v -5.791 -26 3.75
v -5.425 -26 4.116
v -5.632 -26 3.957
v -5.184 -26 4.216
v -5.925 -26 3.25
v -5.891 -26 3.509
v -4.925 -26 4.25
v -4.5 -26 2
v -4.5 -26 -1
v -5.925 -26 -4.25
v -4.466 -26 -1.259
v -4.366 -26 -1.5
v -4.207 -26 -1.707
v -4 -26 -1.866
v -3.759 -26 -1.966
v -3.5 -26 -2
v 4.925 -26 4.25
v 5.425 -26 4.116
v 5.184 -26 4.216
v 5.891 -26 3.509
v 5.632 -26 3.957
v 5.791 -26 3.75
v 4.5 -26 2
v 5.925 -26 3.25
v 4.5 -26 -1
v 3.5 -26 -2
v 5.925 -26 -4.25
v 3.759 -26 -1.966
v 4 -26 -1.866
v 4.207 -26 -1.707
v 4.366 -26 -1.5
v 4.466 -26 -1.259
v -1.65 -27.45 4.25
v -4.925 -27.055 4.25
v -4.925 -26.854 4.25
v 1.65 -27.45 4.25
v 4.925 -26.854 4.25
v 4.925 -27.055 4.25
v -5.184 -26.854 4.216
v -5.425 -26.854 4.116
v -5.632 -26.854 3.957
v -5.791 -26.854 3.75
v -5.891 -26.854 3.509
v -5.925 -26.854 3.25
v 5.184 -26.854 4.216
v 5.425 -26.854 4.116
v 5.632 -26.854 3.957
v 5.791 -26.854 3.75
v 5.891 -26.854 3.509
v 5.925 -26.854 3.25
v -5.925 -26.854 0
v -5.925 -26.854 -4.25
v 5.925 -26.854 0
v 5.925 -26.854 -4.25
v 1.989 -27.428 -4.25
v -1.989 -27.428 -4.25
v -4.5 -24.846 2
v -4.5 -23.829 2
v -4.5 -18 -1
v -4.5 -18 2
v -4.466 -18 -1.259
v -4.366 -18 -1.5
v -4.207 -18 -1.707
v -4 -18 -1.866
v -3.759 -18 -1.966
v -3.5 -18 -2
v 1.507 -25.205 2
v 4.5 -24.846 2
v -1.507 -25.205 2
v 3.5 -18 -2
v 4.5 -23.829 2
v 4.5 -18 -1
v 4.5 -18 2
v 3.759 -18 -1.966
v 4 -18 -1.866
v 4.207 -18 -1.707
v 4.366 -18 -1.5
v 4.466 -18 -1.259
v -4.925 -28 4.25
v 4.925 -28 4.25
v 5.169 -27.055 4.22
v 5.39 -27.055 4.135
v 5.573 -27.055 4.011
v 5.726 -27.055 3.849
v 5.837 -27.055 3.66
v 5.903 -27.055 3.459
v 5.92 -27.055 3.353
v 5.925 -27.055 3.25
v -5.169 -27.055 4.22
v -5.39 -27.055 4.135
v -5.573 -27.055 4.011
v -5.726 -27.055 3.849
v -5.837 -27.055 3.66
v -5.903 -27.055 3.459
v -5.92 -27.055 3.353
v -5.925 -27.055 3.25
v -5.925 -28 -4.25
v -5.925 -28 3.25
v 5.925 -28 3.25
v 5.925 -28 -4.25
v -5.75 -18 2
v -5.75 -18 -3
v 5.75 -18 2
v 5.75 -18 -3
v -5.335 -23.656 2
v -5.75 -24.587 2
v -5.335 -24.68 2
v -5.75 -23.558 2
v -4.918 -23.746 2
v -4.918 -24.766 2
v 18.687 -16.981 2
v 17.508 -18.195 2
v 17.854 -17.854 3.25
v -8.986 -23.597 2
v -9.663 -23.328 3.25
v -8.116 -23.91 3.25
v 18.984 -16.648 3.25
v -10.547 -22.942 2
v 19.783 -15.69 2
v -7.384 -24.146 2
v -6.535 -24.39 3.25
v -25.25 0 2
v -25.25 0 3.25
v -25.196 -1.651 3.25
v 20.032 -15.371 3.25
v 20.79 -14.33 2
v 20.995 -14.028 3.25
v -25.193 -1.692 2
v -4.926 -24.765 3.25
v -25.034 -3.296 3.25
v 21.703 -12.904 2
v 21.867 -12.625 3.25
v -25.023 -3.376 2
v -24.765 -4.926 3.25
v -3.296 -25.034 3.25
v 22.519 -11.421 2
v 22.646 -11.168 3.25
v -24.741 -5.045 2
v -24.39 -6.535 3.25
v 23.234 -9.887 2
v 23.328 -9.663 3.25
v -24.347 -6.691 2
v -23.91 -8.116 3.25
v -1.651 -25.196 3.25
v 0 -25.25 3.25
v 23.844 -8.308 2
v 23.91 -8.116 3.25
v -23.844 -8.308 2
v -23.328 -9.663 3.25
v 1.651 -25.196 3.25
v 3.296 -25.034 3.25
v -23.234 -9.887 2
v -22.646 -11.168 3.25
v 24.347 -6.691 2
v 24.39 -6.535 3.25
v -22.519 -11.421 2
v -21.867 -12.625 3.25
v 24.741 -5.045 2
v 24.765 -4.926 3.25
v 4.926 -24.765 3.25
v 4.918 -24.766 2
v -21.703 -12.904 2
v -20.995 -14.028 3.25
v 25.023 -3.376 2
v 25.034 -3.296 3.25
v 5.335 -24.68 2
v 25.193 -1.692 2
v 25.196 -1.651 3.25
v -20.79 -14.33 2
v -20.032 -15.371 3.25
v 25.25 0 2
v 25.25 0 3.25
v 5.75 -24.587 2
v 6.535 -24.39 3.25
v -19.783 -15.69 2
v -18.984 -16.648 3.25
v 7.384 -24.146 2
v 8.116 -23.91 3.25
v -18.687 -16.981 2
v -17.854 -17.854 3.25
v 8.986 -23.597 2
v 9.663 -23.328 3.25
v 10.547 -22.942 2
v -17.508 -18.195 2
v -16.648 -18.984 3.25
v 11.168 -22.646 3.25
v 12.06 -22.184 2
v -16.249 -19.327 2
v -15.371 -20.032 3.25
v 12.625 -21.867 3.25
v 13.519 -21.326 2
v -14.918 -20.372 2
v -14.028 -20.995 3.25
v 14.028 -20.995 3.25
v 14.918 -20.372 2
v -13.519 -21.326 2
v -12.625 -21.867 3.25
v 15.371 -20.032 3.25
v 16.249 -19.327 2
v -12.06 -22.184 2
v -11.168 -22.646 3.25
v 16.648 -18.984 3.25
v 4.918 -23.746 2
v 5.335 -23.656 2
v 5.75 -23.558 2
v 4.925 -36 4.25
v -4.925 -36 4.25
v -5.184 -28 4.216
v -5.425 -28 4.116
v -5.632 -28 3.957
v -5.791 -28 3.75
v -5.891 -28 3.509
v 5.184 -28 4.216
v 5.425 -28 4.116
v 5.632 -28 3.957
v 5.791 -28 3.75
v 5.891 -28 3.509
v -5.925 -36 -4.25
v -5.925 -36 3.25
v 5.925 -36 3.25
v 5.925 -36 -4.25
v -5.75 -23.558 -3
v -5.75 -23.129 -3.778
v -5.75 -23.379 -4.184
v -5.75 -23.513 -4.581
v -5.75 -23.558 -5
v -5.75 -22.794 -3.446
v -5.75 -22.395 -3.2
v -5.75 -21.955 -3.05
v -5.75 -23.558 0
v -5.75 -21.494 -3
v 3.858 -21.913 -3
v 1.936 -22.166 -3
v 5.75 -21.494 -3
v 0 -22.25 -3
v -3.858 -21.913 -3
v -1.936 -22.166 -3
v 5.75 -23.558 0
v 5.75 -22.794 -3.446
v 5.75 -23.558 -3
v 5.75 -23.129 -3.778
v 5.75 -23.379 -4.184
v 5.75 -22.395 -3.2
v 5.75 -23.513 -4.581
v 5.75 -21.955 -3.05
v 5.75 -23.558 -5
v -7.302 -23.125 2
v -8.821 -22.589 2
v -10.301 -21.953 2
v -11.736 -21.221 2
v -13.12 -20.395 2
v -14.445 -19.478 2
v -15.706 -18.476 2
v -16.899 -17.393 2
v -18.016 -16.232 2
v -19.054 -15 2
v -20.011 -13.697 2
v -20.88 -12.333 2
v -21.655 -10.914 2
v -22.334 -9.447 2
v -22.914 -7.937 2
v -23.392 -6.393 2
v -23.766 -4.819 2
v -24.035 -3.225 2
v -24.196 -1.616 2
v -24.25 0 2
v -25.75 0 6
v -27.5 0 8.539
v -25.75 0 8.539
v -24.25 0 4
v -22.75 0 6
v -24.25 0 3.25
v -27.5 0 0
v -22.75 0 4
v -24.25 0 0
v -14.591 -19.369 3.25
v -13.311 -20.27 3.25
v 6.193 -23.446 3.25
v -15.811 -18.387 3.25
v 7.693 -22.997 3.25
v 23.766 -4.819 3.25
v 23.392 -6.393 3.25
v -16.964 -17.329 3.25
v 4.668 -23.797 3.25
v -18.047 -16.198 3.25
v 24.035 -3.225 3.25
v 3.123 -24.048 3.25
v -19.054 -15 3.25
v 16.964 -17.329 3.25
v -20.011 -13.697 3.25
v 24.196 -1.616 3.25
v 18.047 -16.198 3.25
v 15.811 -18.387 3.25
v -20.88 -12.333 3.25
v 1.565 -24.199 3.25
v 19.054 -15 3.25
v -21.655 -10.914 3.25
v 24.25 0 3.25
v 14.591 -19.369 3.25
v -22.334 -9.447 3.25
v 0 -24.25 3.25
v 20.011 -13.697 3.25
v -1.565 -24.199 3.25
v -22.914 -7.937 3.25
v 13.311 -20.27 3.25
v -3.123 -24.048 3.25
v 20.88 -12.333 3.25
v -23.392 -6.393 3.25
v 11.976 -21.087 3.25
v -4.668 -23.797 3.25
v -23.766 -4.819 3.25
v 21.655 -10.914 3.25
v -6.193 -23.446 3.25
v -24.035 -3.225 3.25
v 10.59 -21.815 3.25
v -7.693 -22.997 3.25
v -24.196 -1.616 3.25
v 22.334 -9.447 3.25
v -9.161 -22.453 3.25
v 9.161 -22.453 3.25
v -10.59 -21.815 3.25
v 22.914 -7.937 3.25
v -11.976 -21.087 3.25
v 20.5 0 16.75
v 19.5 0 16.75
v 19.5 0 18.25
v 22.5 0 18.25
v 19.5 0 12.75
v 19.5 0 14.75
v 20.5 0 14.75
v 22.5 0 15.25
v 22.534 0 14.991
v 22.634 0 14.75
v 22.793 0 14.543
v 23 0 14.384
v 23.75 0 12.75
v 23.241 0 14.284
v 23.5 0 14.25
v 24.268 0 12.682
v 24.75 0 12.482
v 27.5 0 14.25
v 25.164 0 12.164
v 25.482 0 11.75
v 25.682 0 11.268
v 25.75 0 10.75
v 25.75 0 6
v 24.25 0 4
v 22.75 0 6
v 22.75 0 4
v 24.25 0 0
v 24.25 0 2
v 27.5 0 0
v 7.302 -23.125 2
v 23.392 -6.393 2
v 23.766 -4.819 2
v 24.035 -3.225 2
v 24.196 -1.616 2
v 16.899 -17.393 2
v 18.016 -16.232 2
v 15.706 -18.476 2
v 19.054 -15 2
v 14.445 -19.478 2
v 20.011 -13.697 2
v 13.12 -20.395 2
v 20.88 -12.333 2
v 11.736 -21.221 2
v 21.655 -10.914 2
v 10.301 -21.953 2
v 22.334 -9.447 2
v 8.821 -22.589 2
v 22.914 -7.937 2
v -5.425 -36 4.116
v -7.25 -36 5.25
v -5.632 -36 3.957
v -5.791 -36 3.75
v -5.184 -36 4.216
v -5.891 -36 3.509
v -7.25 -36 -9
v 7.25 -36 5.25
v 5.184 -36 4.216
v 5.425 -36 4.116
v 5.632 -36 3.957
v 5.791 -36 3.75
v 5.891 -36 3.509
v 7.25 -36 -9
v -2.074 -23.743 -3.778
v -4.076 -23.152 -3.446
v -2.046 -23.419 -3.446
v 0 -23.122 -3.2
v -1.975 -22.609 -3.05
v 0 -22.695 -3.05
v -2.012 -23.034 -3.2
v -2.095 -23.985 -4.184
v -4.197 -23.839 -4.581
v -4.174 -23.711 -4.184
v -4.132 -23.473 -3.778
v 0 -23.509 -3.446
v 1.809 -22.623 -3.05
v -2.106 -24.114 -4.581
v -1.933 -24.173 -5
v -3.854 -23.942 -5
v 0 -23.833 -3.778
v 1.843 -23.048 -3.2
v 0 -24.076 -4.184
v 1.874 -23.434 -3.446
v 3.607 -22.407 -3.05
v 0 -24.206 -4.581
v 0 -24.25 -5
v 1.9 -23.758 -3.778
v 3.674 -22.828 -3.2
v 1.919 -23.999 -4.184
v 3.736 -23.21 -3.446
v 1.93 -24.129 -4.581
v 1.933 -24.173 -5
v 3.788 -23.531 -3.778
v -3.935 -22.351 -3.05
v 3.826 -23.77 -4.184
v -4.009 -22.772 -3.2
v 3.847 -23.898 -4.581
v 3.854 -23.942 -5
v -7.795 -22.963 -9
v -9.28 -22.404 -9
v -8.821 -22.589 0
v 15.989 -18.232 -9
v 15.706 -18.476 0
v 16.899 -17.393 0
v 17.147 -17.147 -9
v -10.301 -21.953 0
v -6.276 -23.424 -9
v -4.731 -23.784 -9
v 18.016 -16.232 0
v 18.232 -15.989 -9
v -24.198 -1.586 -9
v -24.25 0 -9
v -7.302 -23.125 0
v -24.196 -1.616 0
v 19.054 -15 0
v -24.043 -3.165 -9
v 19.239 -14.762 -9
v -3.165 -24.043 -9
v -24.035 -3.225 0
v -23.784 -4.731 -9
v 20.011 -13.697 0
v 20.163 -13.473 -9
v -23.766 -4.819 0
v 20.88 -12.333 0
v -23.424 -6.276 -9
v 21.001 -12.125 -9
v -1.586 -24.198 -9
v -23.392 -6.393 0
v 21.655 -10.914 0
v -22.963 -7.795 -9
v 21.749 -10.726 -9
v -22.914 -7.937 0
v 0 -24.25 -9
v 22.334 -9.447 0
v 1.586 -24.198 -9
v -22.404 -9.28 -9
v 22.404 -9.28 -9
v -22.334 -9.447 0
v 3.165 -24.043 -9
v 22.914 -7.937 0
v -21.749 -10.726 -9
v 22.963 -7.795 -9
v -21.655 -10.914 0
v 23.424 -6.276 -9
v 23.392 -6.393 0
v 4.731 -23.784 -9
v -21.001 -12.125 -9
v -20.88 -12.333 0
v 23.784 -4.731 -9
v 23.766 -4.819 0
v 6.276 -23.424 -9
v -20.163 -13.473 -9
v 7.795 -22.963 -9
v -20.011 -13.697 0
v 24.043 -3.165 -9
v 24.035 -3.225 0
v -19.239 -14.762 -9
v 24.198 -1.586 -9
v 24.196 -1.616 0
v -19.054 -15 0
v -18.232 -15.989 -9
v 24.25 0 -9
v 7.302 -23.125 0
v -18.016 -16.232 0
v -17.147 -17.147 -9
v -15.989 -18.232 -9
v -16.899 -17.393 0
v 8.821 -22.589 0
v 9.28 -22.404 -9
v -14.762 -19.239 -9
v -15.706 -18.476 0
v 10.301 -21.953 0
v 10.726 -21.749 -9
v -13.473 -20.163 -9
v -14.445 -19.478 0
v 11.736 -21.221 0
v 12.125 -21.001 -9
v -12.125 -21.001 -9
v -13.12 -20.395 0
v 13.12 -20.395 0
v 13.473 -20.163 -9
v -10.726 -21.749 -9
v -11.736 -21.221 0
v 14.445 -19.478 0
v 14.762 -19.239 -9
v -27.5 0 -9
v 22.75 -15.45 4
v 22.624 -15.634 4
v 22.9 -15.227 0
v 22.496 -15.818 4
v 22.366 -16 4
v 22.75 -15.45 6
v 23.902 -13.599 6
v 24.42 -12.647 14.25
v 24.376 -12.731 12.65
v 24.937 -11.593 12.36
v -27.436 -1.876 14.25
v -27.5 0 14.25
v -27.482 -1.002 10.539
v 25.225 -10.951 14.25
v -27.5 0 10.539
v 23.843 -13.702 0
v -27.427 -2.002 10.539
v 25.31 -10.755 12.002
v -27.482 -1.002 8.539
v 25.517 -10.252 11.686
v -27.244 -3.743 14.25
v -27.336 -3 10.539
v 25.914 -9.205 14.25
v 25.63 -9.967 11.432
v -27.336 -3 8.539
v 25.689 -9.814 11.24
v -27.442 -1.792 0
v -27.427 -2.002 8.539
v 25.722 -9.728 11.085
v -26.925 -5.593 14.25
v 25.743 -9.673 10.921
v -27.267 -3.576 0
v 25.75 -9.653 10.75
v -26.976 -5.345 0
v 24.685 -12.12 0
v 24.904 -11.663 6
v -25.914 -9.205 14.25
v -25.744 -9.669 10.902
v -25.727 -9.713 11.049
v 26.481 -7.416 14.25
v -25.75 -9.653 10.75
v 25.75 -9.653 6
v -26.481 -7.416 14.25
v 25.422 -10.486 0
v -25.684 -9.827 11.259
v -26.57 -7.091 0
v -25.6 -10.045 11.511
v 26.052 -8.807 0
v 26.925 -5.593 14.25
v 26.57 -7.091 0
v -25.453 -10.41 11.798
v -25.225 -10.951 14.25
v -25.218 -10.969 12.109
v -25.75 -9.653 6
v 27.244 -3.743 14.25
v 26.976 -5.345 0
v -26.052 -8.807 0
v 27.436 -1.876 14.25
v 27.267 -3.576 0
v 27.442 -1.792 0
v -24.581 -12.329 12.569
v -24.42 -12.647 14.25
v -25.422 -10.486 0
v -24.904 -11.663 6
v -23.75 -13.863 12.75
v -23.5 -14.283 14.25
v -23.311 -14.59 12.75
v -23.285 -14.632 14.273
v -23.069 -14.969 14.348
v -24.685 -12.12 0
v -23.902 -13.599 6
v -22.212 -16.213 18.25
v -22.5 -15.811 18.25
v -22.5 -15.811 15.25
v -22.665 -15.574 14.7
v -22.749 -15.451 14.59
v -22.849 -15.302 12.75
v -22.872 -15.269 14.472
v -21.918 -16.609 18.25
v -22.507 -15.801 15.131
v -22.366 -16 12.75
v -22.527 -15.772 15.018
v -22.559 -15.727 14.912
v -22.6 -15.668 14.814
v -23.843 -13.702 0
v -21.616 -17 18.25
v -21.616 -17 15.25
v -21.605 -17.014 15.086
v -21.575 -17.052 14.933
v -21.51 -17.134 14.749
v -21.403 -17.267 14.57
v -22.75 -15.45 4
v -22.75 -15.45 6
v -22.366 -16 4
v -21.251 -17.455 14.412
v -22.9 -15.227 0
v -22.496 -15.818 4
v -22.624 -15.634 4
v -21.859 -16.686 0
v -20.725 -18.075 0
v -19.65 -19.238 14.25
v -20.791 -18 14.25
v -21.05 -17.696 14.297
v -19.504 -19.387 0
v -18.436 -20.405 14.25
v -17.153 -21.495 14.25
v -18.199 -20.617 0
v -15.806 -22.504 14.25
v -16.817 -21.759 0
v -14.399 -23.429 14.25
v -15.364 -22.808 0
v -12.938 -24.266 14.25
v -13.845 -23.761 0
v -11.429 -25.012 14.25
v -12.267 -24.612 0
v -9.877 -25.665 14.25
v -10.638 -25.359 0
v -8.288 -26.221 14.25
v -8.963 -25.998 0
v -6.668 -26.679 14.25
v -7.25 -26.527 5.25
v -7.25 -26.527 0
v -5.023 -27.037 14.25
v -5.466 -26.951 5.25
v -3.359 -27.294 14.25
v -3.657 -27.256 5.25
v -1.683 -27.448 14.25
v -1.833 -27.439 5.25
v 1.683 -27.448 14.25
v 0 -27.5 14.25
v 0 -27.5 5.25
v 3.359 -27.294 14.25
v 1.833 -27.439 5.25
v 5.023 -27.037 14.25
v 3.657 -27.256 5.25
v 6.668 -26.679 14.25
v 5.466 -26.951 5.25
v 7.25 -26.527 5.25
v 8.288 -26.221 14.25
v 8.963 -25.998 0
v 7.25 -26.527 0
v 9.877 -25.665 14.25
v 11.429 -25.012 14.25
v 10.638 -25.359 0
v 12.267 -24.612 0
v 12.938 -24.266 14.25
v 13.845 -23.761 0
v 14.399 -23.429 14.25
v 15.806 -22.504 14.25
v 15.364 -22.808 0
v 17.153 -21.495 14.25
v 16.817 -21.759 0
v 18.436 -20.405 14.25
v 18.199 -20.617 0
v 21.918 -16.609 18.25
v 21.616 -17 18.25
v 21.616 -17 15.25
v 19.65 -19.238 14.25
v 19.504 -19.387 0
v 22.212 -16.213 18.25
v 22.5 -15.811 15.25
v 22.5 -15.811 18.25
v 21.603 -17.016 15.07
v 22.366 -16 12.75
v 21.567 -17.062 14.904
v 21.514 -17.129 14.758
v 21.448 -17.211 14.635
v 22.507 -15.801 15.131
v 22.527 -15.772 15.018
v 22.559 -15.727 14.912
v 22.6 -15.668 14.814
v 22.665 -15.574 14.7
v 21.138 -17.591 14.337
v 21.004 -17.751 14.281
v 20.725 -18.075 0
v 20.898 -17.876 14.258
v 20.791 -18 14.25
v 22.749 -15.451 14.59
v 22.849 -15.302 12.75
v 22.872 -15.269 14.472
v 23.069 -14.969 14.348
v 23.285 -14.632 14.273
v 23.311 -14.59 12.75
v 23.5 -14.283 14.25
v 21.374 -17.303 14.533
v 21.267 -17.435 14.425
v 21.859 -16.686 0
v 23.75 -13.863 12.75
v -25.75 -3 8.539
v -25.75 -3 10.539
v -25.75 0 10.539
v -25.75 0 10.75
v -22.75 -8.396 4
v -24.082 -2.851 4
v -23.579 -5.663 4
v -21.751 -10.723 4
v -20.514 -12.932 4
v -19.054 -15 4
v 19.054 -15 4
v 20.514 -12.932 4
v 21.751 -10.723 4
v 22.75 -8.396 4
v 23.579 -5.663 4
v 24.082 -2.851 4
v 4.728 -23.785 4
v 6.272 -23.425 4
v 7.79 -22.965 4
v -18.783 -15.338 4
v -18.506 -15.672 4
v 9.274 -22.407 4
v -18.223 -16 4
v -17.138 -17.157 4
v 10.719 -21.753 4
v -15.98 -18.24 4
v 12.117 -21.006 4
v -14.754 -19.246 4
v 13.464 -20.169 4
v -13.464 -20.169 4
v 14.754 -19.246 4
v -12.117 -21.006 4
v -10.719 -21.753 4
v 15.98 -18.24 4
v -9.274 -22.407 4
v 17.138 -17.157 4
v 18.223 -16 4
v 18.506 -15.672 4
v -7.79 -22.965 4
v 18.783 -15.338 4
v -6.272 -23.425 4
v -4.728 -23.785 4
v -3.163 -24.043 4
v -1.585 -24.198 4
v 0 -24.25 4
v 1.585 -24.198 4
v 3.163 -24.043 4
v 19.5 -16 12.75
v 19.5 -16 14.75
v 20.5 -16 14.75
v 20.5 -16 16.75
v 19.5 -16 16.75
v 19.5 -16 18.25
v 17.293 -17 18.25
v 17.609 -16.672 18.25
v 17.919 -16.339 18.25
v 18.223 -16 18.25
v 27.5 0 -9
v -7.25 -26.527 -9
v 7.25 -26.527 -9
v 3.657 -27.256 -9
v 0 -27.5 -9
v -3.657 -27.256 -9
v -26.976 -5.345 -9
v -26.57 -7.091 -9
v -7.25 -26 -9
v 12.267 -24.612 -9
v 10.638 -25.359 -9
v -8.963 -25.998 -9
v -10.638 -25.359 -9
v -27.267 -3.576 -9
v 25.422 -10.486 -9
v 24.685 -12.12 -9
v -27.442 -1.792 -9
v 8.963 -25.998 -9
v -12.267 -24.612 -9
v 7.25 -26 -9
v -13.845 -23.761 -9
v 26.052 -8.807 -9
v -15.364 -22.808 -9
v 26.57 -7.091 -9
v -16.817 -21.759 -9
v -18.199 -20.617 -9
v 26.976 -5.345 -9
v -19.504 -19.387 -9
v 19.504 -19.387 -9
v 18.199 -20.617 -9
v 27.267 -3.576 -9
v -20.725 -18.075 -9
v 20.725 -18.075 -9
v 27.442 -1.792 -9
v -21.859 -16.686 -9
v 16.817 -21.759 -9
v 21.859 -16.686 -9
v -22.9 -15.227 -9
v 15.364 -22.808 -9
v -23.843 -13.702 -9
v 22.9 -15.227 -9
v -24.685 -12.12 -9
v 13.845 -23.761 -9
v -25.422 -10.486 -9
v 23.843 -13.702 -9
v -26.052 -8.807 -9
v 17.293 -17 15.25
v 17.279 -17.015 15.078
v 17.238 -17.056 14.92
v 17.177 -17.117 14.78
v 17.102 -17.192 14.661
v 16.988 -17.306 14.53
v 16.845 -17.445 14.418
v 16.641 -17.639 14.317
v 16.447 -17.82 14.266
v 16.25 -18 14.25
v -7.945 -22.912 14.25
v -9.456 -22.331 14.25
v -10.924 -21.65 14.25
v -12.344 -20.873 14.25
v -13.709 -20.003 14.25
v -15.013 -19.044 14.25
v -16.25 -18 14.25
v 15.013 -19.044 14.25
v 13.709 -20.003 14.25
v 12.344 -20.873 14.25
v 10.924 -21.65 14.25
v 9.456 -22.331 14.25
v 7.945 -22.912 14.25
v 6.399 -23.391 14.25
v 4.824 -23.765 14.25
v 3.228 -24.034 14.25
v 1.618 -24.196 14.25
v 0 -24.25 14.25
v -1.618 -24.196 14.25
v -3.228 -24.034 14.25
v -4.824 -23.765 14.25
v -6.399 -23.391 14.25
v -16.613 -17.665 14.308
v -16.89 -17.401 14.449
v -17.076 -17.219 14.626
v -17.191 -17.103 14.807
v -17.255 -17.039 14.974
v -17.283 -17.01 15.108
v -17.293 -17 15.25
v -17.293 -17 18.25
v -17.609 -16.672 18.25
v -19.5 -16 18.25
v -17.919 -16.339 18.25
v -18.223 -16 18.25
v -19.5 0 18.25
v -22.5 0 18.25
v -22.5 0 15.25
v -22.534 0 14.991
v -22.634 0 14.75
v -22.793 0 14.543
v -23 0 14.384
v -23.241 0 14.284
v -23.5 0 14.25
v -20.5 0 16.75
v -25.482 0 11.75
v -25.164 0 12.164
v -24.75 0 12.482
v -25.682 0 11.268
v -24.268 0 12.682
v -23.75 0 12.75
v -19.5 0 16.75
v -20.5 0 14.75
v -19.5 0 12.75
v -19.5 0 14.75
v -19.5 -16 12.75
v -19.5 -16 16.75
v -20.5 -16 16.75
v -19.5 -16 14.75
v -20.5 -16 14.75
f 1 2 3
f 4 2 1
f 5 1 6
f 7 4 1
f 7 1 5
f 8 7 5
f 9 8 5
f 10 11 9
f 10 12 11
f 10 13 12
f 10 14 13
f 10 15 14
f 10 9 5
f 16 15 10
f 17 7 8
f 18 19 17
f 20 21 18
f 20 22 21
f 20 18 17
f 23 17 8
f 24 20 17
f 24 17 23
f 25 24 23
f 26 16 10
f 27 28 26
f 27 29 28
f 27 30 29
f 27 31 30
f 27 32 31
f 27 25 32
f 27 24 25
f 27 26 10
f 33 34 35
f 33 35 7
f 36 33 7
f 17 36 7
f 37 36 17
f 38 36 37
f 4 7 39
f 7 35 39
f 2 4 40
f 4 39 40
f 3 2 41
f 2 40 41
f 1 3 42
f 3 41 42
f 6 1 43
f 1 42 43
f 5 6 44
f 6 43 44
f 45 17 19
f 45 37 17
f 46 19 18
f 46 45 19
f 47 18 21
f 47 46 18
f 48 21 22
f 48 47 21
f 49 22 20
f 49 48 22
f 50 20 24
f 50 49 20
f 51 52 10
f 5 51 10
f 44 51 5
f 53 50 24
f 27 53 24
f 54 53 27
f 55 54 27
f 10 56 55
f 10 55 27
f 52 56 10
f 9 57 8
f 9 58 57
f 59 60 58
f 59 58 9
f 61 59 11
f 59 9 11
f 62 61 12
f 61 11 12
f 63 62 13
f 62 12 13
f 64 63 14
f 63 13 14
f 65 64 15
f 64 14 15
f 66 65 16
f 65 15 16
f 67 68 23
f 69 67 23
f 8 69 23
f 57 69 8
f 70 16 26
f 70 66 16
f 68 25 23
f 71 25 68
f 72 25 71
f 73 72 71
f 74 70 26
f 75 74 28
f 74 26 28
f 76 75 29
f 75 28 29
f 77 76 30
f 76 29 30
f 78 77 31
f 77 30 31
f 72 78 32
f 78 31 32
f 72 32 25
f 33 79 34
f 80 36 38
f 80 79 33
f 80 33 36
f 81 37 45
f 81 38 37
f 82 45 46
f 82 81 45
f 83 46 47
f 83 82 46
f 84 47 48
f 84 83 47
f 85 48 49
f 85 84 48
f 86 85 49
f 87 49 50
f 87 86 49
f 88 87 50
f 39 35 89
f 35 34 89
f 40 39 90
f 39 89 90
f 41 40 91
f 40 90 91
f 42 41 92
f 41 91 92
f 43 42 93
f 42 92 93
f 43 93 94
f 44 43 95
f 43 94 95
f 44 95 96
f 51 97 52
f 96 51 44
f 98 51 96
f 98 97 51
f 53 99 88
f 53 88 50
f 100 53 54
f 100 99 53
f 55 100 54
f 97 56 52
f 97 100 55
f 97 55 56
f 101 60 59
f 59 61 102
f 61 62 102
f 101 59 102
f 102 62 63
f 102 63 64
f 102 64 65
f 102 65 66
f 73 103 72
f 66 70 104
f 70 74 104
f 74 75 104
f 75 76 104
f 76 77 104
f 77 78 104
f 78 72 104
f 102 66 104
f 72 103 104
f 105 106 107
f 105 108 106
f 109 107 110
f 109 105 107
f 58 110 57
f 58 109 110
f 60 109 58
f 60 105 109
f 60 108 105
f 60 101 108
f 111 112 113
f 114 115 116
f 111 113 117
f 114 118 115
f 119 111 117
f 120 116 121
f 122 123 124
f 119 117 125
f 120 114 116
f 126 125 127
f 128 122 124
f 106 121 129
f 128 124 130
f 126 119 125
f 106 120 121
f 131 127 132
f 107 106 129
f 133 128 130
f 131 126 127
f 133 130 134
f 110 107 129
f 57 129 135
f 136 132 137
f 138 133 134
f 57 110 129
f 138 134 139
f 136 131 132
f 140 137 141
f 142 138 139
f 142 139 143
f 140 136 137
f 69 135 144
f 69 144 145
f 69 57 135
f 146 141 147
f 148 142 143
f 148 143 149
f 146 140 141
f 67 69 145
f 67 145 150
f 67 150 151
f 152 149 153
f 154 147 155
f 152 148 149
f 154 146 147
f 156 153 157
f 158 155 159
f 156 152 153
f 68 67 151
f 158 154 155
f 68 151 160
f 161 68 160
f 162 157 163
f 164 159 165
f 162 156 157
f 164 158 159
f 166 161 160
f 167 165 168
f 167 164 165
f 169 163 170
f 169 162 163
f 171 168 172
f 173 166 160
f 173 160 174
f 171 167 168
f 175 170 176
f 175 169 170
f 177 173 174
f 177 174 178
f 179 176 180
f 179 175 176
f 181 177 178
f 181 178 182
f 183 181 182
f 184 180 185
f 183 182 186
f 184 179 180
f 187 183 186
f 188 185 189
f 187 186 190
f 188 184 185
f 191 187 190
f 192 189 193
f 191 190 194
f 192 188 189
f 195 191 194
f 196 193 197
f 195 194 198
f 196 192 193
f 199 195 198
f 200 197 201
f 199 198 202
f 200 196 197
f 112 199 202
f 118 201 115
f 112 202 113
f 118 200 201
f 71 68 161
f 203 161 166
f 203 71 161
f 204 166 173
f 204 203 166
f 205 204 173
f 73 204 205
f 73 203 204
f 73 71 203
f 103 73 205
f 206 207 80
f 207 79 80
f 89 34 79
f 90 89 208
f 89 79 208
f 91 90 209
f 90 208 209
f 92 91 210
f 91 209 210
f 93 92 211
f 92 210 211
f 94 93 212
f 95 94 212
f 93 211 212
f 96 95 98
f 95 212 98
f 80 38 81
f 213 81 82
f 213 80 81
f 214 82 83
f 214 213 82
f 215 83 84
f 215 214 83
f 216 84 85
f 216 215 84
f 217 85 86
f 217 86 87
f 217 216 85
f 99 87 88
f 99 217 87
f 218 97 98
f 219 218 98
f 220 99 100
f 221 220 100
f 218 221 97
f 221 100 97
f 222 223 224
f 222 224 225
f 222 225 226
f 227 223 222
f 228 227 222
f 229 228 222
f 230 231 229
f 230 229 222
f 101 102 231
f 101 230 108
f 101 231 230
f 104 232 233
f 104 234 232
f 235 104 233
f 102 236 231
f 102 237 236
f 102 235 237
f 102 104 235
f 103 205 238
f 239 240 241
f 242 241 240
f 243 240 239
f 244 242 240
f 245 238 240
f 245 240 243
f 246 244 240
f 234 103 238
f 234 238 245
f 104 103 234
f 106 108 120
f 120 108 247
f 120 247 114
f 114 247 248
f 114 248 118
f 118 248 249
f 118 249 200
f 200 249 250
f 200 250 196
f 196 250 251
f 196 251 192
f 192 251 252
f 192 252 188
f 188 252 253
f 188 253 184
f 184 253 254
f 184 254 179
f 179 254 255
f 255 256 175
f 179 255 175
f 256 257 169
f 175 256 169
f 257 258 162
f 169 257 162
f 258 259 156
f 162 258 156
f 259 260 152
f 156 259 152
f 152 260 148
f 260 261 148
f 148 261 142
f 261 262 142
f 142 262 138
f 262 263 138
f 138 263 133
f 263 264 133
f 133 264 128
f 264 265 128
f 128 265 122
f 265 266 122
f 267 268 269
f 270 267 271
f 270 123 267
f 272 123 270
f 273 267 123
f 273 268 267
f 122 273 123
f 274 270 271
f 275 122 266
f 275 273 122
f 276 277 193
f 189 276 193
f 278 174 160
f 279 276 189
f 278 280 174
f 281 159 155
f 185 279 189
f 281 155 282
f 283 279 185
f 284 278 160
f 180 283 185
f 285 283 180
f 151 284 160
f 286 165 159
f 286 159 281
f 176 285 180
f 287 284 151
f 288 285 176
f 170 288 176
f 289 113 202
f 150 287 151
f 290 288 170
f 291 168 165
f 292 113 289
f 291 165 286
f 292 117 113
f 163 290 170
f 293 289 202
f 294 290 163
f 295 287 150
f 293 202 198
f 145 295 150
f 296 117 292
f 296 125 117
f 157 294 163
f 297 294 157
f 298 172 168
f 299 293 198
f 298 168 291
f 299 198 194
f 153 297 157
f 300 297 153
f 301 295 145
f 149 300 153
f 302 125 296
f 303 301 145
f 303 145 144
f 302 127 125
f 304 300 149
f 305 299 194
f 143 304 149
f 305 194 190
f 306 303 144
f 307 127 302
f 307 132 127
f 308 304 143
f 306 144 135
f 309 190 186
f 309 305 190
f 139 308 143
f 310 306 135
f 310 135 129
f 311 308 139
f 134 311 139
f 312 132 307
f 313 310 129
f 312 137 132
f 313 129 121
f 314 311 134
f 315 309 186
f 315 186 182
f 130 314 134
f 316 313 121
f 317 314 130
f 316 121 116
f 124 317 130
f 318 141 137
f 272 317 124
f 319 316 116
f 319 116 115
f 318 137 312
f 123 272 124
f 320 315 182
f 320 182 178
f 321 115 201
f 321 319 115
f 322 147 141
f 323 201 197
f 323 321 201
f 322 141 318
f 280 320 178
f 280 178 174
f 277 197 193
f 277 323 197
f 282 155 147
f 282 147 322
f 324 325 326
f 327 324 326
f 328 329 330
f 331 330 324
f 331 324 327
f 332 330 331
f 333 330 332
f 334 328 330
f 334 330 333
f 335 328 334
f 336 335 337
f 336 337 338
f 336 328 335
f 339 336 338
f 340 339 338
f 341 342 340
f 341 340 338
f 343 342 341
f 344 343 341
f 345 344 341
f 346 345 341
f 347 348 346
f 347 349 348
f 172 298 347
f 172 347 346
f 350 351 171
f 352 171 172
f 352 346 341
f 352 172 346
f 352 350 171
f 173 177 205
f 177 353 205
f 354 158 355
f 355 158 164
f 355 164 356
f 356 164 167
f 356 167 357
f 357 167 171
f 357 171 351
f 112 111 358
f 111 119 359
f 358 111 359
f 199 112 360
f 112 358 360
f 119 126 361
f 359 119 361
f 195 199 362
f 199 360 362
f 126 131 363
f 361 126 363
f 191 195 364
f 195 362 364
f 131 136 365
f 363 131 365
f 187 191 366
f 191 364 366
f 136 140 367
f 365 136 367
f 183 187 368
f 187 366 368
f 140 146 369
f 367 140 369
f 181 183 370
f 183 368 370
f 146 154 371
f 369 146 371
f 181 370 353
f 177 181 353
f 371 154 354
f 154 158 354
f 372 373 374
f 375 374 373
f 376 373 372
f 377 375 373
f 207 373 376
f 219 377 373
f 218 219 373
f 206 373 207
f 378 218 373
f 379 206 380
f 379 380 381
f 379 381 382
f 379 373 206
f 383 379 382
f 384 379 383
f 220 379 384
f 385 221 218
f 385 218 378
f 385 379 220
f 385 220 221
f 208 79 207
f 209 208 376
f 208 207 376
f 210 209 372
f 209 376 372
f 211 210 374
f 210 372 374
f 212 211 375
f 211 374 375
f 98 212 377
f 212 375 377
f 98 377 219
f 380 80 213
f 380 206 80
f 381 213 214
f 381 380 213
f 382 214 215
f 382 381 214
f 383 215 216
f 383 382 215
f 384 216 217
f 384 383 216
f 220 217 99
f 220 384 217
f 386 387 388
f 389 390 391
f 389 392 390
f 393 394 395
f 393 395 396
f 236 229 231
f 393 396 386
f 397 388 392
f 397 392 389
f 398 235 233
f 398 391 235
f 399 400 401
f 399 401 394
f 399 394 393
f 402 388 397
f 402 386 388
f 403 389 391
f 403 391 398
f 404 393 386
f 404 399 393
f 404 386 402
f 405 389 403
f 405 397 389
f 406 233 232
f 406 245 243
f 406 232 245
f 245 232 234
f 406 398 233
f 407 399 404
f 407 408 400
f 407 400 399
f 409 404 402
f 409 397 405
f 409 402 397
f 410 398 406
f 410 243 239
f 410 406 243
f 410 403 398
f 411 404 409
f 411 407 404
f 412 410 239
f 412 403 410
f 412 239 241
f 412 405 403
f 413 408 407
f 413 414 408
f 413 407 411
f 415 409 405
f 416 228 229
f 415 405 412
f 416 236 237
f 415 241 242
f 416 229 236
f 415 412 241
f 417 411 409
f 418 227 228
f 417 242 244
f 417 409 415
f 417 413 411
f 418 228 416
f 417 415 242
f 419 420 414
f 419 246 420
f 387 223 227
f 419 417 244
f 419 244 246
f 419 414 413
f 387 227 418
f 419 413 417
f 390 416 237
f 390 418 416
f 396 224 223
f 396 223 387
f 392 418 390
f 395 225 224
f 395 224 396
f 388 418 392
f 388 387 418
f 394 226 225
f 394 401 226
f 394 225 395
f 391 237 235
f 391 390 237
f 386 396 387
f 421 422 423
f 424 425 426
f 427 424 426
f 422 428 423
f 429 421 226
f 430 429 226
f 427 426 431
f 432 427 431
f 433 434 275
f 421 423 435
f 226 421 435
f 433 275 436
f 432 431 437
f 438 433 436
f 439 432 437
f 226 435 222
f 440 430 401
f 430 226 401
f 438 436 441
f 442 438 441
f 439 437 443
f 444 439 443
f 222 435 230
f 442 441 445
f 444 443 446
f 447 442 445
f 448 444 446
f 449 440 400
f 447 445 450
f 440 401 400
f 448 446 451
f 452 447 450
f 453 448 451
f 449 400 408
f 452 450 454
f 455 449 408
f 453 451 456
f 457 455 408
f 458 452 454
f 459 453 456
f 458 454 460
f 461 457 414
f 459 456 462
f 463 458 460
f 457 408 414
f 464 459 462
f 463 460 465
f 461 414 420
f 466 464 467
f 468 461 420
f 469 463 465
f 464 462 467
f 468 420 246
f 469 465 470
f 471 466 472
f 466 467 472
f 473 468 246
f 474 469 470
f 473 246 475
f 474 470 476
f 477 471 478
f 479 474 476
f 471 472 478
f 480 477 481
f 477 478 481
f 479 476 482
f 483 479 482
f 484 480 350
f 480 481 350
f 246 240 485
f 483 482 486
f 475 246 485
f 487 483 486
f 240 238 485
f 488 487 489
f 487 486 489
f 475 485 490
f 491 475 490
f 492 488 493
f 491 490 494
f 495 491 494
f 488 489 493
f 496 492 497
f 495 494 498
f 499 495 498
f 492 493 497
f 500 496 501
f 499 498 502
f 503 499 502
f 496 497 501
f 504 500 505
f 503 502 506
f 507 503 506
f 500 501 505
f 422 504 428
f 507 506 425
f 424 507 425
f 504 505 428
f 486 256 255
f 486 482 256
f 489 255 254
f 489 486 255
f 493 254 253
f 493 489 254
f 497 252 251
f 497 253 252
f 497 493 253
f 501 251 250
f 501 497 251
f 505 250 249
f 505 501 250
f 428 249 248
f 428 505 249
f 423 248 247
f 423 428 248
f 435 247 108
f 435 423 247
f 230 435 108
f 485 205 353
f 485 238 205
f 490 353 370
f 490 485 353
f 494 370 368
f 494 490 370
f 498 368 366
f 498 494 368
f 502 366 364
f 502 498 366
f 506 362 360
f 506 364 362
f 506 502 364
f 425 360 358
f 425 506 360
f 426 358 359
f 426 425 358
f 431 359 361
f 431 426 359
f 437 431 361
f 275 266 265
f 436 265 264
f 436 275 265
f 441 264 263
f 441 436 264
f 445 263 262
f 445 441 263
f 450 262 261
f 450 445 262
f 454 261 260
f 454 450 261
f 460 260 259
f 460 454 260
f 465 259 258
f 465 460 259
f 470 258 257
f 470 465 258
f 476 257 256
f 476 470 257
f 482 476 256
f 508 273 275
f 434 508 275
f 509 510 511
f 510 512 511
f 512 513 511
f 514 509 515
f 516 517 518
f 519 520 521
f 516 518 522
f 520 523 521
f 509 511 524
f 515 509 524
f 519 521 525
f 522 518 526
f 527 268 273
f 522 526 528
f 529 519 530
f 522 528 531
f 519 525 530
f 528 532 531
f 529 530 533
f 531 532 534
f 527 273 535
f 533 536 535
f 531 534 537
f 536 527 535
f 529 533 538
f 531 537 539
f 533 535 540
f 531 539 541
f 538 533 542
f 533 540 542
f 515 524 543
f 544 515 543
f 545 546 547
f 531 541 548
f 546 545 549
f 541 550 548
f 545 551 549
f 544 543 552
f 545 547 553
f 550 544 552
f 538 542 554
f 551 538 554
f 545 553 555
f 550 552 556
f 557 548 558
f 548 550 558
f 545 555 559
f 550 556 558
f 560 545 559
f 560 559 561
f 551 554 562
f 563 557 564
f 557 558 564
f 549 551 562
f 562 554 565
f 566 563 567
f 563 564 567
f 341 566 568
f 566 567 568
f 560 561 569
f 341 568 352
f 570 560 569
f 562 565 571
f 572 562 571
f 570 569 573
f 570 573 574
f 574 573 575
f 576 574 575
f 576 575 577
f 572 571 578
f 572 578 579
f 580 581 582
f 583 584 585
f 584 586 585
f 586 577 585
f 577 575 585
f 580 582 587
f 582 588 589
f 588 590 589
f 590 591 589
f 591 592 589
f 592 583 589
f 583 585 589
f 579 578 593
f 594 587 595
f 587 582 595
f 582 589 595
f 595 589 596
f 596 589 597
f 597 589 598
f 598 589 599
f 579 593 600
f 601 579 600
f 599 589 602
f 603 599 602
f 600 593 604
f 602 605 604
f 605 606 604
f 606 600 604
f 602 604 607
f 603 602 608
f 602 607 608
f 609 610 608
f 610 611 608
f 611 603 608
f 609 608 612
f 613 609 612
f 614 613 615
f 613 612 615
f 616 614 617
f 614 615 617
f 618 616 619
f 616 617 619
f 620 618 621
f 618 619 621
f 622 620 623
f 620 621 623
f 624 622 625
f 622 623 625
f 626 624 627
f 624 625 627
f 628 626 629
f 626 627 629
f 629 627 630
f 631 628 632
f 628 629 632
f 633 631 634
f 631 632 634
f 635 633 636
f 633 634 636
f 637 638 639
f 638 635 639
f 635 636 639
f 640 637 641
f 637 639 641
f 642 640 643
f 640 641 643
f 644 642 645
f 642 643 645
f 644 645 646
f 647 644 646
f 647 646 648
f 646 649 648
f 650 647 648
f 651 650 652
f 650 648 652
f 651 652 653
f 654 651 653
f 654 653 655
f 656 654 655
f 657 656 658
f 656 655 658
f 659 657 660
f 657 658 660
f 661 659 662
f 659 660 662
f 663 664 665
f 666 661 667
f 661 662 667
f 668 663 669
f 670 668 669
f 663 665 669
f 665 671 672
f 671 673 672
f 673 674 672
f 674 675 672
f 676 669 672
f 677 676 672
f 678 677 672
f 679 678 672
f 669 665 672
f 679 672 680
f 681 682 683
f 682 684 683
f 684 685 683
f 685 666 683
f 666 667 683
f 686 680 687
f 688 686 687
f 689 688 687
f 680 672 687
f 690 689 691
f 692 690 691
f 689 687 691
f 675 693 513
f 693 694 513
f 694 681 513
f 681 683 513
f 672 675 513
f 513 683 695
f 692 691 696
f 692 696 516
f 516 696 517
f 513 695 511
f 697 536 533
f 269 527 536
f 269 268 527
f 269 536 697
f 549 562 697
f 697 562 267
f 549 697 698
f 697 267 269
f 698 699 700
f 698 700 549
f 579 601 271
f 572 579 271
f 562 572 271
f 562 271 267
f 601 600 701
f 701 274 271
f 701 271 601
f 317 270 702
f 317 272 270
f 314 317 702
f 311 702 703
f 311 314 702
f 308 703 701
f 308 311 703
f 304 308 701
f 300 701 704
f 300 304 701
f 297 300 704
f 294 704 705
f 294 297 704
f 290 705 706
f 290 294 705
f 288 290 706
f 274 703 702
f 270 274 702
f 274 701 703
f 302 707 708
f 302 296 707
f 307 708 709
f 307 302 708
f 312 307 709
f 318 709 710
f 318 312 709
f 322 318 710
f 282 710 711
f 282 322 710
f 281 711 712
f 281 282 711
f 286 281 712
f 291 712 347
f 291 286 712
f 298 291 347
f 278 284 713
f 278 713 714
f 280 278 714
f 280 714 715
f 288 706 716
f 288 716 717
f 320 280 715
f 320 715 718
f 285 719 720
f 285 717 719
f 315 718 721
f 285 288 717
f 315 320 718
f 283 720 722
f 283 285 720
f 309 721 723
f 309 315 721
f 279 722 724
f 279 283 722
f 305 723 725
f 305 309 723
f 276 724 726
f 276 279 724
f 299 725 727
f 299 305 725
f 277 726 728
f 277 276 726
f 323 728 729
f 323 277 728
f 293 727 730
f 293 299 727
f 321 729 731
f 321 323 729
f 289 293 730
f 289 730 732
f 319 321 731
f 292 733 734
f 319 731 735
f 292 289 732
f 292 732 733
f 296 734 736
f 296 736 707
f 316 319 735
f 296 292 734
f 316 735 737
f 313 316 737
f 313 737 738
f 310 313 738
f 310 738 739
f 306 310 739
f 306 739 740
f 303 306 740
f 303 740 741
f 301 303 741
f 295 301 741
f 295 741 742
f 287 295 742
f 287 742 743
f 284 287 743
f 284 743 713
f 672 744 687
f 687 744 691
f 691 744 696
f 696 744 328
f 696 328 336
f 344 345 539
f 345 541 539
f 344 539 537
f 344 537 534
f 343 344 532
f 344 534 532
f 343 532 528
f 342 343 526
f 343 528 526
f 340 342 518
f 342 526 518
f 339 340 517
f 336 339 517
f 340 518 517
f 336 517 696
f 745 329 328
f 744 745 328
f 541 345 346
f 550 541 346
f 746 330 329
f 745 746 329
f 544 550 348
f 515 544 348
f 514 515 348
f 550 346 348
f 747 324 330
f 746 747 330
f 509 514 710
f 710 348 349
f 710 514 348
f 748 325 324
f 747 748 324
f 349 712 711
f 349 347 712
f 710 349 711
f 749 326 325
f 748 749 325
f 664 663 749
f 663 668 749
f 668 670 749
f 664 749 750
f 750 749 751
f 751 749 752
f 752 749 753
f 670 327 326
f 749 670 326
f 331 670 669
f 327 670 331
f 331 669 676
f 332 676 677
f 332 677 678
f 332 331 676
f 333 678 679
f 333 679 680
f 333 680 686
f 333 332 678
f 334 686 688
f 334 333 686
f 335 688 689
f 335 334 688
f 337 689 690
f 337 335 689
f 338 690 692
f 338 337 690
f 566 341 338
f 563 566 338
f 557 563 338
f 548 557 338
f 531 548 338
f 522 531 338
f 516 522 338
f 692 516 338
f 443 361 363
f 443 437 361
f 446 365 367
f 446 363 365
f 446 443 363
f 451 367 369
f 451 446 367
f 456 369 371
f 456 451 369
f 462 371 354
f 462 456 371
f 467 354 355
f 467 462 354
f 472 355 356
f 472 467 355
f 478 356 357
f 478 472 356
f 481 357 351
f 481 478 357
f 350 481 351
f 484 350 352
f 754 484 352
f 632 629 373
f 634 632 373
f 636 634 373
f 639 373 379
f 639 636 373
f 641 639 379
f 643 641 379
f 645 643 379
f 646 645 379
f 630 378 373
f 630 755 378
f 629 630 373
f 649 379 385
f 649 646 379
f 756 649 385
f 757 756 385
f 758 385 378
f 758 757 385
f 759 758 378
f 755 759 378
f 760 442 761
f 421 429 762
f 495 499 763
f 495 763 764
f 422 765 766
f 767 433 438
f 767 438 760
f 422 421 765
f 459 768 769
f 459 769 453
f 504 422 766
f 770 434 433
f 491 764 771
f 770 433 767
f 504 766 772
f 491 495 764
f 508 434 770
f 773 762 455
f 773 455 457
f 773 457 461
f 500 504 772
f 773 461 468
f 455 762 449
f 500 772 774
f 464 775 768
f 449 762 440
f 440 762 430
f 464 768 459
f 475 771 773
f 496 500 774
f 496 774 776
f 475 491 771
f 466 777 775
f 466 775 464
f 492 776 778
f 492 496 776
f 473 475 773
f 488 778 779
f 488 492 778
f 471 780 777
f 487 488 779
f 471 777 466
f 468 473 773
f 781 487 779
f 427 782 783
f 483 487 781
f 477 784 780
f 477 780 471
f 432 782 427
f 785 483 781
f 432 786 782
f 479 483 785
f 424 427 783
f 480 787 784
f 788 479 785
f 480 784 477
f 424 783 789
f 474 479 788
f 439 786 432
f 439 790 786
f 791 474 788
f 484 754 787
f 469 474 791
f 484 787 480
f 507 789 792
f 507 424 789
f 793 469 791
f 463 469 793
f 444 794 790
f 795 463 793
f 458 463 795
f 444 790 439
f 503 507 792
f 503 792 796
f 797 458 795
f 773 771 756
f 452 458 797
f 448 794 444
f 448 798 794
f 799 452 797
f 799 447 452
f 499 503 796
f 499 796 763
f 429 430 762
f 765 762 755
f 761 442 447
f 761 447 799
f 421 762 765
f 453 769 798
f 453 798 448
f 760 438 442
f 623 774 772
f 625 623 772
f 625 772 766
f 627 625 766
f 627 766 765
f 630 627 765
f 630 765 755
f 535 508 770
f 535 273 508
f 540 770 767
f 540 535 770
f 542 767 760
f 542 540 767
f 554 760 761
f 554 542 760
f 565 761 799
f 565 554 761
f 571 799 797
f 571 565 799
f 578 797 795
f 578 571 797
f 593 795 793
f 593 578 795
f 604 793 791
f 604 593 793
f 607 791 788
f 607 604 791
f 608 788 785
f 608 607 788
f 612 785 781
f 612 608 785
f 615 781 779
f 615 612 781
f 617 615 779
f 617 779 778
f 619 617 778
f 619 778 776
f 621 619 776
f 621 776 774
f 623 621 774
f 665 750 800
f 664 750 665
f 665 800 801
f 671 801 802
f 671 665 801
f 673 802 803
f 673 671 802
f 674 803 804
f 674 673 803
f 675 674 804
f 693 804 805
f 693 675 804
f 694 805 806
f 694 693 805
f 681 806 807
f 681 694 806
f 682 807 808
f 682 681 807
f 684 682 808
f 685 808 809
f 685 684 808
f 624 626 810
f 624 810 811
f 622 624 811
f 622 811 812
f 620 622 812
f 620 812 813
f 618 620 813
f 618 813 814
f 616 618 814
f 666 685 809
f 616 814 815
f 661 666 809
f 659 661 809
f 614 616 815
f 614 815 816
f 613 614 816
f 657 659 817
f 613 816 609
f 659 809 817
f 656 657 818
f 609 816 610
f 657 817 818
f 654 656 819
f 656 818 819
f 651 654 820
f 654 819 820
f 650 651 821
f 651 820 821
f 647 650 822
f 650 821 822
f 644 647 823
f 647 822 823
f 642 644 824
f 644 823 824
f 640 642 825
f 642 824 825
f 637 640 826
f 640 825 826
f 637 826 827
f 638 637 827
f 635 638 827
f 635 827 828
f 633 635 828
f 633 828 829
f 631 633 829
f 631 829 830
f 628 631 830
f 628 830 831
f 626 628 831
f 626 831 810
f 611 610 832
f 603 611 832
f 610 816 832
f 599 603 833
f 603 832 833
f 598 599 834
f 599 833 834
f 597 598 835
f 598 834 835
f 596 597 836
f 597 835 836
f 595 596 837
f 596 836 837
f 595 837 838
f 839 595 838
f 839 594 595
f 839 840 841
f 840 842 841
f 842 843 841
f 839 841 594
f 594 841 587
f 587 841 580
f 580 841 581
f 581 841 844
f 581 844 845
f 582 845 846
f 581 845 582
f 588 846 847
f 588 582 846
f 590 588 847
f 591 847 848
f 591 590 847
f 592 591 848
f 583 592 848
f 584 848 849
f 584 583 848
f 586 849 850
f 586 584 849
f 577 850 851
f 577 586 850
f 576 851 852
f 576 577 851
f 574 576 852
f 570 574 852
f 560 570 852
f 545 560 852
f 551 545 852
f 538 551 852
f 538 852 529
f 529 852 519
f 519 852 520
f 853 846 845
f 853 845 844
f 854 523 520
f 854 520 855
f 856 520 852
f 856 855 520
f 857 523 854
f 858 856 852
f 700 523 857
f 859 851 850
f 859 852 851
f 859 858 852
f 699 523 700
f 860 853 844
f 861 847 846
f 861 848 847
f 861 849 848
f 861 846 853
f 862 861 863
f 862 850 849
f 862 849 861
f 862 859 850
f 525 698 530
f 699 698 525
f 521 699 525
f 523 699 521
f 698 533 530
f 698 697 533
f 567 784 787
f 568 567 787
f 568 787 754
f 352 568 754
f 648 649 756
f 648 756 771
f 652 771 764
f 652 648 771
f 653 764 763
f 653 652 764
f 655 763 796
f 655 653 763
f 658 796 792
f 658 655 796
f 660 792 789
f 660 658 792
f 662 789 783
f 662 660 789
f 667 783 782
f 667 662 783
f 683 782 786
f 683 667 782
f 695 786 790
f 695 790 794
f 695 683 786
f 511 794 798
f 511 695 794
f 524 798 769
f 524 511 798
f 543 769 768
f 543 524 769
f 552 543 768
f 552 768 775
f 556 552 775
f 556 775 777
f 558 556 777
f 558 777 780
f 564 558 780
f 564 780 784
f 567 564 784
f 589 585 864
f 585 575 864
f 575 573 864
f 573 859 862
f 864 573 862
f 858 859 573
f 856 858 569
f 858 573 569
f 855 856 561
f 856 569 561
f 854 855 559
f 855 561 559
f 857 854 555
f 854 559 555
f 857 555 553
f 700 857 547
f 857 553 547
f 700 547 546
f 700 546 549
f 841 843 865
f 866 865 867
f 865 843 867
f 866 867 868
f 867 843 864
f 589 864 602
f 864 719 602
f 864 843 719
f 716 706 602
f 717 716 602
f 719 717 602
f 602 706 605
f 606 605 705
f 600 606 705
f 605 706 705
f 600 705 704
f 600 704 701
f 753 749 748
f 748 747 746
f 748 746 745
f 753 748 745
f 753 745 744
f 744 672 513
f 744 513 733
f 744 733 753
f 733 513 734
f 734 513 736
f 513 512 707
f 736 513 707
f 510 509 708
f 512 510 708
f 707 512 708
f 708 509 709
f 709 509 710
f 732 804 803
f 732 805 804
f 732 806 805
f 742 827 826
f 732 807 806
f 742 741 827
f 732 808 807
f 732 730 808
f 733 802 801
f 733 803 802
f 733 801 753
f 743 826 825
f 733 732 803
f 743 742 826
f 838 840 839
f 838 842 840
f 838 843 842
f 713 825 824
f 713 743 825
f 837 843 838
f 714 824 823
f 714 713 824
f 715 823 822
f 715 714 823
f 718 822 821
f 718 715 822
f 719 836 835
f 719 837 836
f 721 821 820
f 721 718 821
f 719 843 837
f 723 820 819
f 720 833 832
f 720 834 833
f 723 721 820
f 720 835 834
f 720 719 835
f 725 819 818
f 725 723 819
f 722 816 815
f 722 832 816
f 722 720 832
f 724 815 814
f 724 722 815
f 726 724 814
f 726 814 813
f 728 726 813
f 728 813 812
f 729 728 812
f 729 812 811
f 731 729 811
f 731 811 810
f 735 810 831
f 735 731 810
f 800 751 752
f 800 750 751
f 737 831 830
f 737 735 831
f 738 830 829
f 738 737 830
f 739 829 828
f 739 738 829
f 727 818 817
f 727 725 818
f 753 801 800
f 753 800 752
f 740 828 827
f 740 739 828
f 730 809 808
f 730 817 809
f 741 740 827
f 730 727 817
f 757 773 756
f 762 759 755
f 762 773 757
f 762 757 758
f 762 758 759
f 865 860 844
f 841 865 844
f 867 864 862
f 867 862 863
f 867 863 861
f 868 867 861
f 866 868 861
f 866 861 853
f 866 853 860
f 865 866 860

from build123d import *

# Parameters (mm, degrees)
SKETCH013_AS_DRAWN_W                      = 11.85
SKETCH013_AS_DRAWN_H                      = 8.5
EXTRUDE018_DEPTH                          = 2
EXTRUDE018_ONTO_SKETCH013_ROLL_ANGLE      = 90
SKETCH009_AS_DRAWN_W                      = 11.85
SKETCH009_AS_DRAWN_H                      = 8.5
EXTRUDE017_DEPTH                          = 10
EXTRUDE017_ONTO_SKETCH009_ROLL_ANGLE      = 90
SKETCH012_AS_DRAWN_W                      = 14.5
SKETCH012_AS_DRAWN_H                      = 14.25
EXTRUDE016_DEPTH                          = 10
EXTRUDE016_ONTO_SKETCH012_ROLL_ANGLE      = 90
SKETCH010_AS_DRAWN_W                      = 9
SKETCH010_AS_DRAWN_H                      = 4
EXTRUDE015_DEPTH                          = 30
EXTRUDE015_ONTO_SKETCH010_ROLL_ANGLE      = 90
SKETCH011_AS_DRAWN_W                      = 11.5
SKETCH011_AS_DRAWN_H                      = 5
EXTRUDE014_DEPTH                          = 8
EXTRUDE014_ONTO_SKETCH011_ROLL_ANGLE      = 90
EXTRUDE013_DEPTH                          = 20
SKETCH006_AS_DRAWN_W                      = 3
SKETCH006_AS_DRAWN_H                      = 2
EXTRUDE011_DEPTH                          = 3
EXTRUDE011_ONTO_SKETCH006_ROLL_ANGLE      = 90
EXTRUDE011_ONTO_SKETCH006_PLACEMENT_ANGLE = 180
EXTRUDE010_DEPTH                          = 4
EXTRUDE008_DEPTH                          = 16
EXTRUDE008_ONTO_SKETCH004_ROLL_ANGLE      = 90
EXTRUDE008_ONTO_SKETCH004_PLACEMENT_ANGLE = 180
EXTRUDE002_DEPTH                          = 1.25
EXTRUDE_DEPTH                             = 4
EXTRUDE004_DEPTH                          = 18.25
EXTRUDE012_DEPTH                          = 9
FILLET_R                                  = 1
FILLET001_R                               = 1
FILLET002_R                               = 2
FILLET003_R                               = 2
FILLET004_R                               = 1
FILLET005_R                               = 2
FILLET006_R                               = 1


with BuildPart() as extrude018:
    # Sketch013 as drawn → Extrude018 (new)
    with BuildSketch(Plane.XY):
        Rectangle(SKETCH013_AS_DRAWN_W, SKETCH013_AS_DRAWN_H)
    extrude(amount=-EXTRUDE018_DEPTH)


with BuildPart() as extrude018_1:
    # Extrude018 onto Sketch013 roll: moved
    add(extrude018.part.rotate(Axis((0, 0, 0), (1, 0, 0)), EXTRUDE018_ONTO_SKETCH013_ROLL_ANGLE))


with BuildPart() as extrude018_2:
    # Extrude018 onto Sketch013 placement: moved
    add(extrude018_1.part.moved(Location((0, -28, 0))))


with BuildPart() as extrude017:
    # Sketch009 as drawn → Extrude017 (new)
    with BuildSketch(Plane.XY):
        Rectangle(SKETCH009_AS_DRAWN_W, SKETCH009_AS_DRAWN_H)
    extrude(amount=EXTRUDE017_DEPTH)


with BuildPart() as extrude017_1:
    # Extrude017 onto Sketch009 roll: moved
    add(extrude017.part.rotate(Axis((0, 0, 0), (1, 0, 0)), EXTRUDE017_ONTO_SKETCH009_ROLL_ANGLE))


with BuildPart() as extrude017_2:
    # Extrude017 onto Sketch009 placement: moved
    add(extrude017_1.part.moved(Location((0, -26, 0))))


with BuildPart() as cut006:
    # Sketch012 as drawn → Extrude016 (new)
    with BuildSketch(Plane.XY):
        with Locations((0, -1.875)):
            Rectangle(SKETCH012_AS_DRAWN_W, SKETCH012_AS_DRAWN_H)
    extrude(amount=EXTRUDE016_DEPTH)


with BuildPart() as cut006_1:
    # Extrude016 onto Sketch012 roll: moved
    add(cut006.part.rotate(Axis((0, 0, 0), (1, 0, 0)), EXTRUDE016_ONTO_SKETCH012_ROLL_ANGLE))


with BuildPart() as cut006_2:
    # Extrude016 onto Sketch012 placement: moved
    add(cut006_1.part.moved(Location((0, -26, 0))))

    # Cut006: cut Extrude017
    add(extrude017_2.part, mode=Mode.SUBTRACT)


with BuildPart() as extrude015:
    # Sketch010 as drawn → Extrude015 (new)
    with BuildSketch(Plane.XY):
        Rectangle(SKETCH010_AS_DRAWN_W, SKETCH010_AS_DRAWN_H)
    extrude(amount=EXTRUDE015_DEPTH)


with BuildPart() as extrude015_1:
    # Extrude015 onto Sketch010 roll: moved
    add(extrude015.part.rotate(Axis((0, 0, 0), (1, 0, 0)), EXTRUDE015_ONTO_SKETCH010_ROLL_ANGLE))


with BuildPart() as extrude015_2:
    # Extrude015 onto Sketch010 placement: moved
    add(extrude015_1.part)


with BuildPart() as extrude014:
    # Sketch011 as drawn → Extrude014 (new)
    with BuildSketch(Plane.XY):
        with Locations((0, -0.5)):
            Rectangle(SKETCH011_AS_DRAWN_W, SKETCH011_AS_DRAWN_H)
    extrude(amount=EXTRUDE014_DEPTH)


with BuildPart() as extrude014_1:
    # Extrude014 onto Sketch011 roll: moved
    add(extrude014.part.rotate(Axis((0, 0, 0), (1, 0, 0)), EXTRUDE014_ONTO_SKETCH011_ROLL_ANGLE))


with BuildPart() as extrude014_2:
    # Extrude014 onto Sketch011 placement: moved
    add(extrude014_1.part.moved(Location((0, -18, 0))))


with BuildPart() as extrude013:
    # Sketch008 → Extrude013 (new body)
    with BuildSketch(Plane.XY):
        with BuildLine():
            ThreePointArc((-19.054199, -15), (0, -24.25), (19.054199, -15))
            Line((-19.054199, -15), (19.054199, -15))
        make_face()
    extrude(amount=EXTRUDE013_DEPTH)


with BuildPart() as extrude011:
    # Sketch006 as drawn → Extrude011 (new)
    with BuildSketch(Plane.XY):
        with Locations((26.45538, 9.53866)):
            Rectangle(SKETCH006_AS_DRAWN_W, SKETCH006_AS_DRAWN_H)
    extrude(amount=-EXTRUDE011_DEPTH)


with BuildPart() as extrude011_1:
    # Extrude011 onto Sketch006 roll: moved
    add(extrude011.part.rotate(Axis((0, 0, 0), (1, 0, 0)), EXTRUDE011_ONTO_SKETCH006_ROLL_ANGLE))


with BuildPart() as extrude011_2:
    # Extrude011 onto Sketch006 placement: moved
    add(extrude011_1.part.rotate(Axis((0, 0, 0), (0, 0, 1)), EXTRUDE011_ONTO_SKETCH006_PLACEMENT_ANGLE))


with BuildPart() as extrude010:
    # Sketch005 → Extrude010 (new body)
    with BuildSketch(Plane.XY.offset(18.25)):
        with BuildLine():
            ThreePointArc((-30, 0), (0, -30), (30, 0))
            Line((22.5, 0), (30, 0))
            Line((22.5, -17), (22.5, 0))
            Line((-22.5, -17), (22.5, -17))
            Line((-22.5, 0), (-22.5, -17))
            Line((-30, 0), (-22.5, 0))
        make_face()
    extrude(amount=-EXTRUDE010_DEPTH)


with BuildPart() as extrude008:
    # Sketch004 as drawn → Extrude008 (new)
    with BuildSketch(Plane.XY):
        Polygon((-22.75, 4), (22.75, 4), (22.75, 6), (25.75, 6), (25.75, 12.75), (19.5, 12.75), (19.5, 14.75), (20.5, 14.75), (20.5, 16.75), (19.5, 16.75), (19.5, 18.25), (-19.5, 18.25), (-19.5, 16.75), (-20.5, 16.75), (-20.5, 14.75), (-19.5, 14.75), (-19.5, 12.75), (-25.75, 12.75), (-25.75, 6), (-22.75, 6), align=None)
    extrude(amount=-EXTRUDE008_DEPTH)


with BuildPart() as extrude008_1:
    # Extrude008 onto Sketch004 roll: moved
    add(extrude008.part.rotate(Axis((0, 0, 0), (1, 0, 0)), EXTRUDE008_ONTO_SKETCH004_ROLL_ANGLE))


with BuildPart() as extrude008_2:
    # Extrude008 onto Sketch004 placement: moved
    add(extrude008_1.part.rotate(Axis((0, 0, 0), (0, 0, 1)), EXTRUDE008_ONTO_SKETCH004_PLACEMENT_ANGLE))


with BuildPart() as extrude002:
    # Sketch003 → Extrude002 (new body)
    with BuildSketch(Plane.XY.offset(2)):
        with BuildLine():
            ThreePointArc((-25.25, 0), (0, -25.25), (25.25, 0))
            Line((-25.25, 0), (25.25, 0))
        make_face()
    extrude(amount=EXTRUDE002_DEPTH)


with BuildPart() as lilypadcut:
    # Sketch002 → Extrude (new body)
    with BuildSketch(Plane.XY):
        with BuildLine():
            ThreePointArc((-24.25, 0), (0, -24.25), (24.25, 0))
            Line((-24.25, 0), (24.25, 0))
        make_face()
    extrude(amount=EXTRUDE_DEPTH)

    # Fusion: union Extrude002
    add(extrude002.part)


with BuildPart() as cut003:
    # Sketch001 → Extrude004 (new body)
    with BuildSketch(Plane.XY):
        with BuildLine():
            ThreePointArc((-27.5, 0), (0, -27.5), (27.5, 0))
            Line((-27.5, 0), (27.5, 0))
        make_face()
    extrude(amount=EXTRUDE004_DEPTH)

    # Cut: cut LilyPadCut
    add(lilypadcut.part, mode=Mode.SUBTRACT)

    # Cut001: cut Extrude008
    add(extrude008_2.part, mode=Mode.SUBTRACT)

    # Cut002: cut Extrude010
    add(extrude010.part, mode=Mode.SUBTRACT)

    # Cut003: cut Extrude011
    add(extrude011_2.part, mode=Mode.SUBTRACT)


with BuildPart() as fillet006:
    # Sketch007 → Extrude012 (new body)
    with BuildSketch(Plane.XY):
        with BuildLine():
            ThreePointArc((-27.5, 0), (0, -27.5), (27.5, 0))
            Line((24.25, 0), (27.5, 0))
            ThreePointArc((-24.25, 0), (0, -24.25), (24.25, 0))
            Line((-27.5, 0), (-24.25, 0))
        make_face()
    extrude(amount=-EXTRUDE012_DEPTH)

    # Fusion001: union Cut003
    add(cut003.part)

    # Cut004: cut Extrude013
    add(extrude013.part, mode=Mode.SUBTRACT)

    # Fillet
    fillet_edges = [fillet006.edges().sort_by_distance(p)[0] for p in [
        (-19.454695, -17, 14.25),
        (19.454695, -17, 14.25),
    ]]
    fillet(fillet_edges, radius=FILLET_R)

    # Fillet001
    fillet001_edges = [fillet006.edges().sort_by_distance(p)[0] for p in [
        (-22.5, -7.905694, 14.25),
        (22.5, -7.905694, 14.25),
    ]]
    fillet(fillet001_edges, radius=FILLET001_R)

    # Fillet002
    fillet002_edges = [fillet006.edges().sort_by_distance(p)[0] for p in [
        (25.75, -4.826684, 12.75),
    ]]
    fillet(fillet002_edges, radius=FILLET002_R)

    # Fillet003
    fillet003_edges = [fillet006.edges().sort_by_distance(p)[0] for p in [
        (-25.75, -4.826684, 12.75),
    ]]
    fillet(fillet003_edges, radius=FILLET003_R)

    # Fusion002: union Extrude014
    add(extrude014_2.part)

    # Cut005: cut Extrude015
    add(extrude015_2.part, mode=Mode.SUBTRACT)

    # Fusion003: union Cut006
    add(cut006_2.part)

    # Cut007: cut Extrude018
    add(extrude018_2.part, mode=Mode.SUBTRACT)

    # Fillet004
    fillet004_edges = [fillet006.edges().sort_by_distance(p)[0] for p in [
        (4.5, -22, -2),
        (-4.5, -22, -2),
    ]]
    fillet(fillet004_edges, radius=FILLET004_R)

    # Fillet005
    fillet005_edges = [fillet006.edges().sort_by_distance(p)[0] for p in [
        (0, -24.25, -3),
    ]]
    fillet(fillet005_edges, radius=FILLET005_R)

    # Fillet006
    fillet006_edges = [fillet006.edges().sort_by_distance(p)[0] for p in [
        (5.925, -32, 4.25),
        (-5.925, -32, 4.25),
    ]]
    fillet(fillet006_edges, radius=FILLET006_R)


solid = fillet006.part
